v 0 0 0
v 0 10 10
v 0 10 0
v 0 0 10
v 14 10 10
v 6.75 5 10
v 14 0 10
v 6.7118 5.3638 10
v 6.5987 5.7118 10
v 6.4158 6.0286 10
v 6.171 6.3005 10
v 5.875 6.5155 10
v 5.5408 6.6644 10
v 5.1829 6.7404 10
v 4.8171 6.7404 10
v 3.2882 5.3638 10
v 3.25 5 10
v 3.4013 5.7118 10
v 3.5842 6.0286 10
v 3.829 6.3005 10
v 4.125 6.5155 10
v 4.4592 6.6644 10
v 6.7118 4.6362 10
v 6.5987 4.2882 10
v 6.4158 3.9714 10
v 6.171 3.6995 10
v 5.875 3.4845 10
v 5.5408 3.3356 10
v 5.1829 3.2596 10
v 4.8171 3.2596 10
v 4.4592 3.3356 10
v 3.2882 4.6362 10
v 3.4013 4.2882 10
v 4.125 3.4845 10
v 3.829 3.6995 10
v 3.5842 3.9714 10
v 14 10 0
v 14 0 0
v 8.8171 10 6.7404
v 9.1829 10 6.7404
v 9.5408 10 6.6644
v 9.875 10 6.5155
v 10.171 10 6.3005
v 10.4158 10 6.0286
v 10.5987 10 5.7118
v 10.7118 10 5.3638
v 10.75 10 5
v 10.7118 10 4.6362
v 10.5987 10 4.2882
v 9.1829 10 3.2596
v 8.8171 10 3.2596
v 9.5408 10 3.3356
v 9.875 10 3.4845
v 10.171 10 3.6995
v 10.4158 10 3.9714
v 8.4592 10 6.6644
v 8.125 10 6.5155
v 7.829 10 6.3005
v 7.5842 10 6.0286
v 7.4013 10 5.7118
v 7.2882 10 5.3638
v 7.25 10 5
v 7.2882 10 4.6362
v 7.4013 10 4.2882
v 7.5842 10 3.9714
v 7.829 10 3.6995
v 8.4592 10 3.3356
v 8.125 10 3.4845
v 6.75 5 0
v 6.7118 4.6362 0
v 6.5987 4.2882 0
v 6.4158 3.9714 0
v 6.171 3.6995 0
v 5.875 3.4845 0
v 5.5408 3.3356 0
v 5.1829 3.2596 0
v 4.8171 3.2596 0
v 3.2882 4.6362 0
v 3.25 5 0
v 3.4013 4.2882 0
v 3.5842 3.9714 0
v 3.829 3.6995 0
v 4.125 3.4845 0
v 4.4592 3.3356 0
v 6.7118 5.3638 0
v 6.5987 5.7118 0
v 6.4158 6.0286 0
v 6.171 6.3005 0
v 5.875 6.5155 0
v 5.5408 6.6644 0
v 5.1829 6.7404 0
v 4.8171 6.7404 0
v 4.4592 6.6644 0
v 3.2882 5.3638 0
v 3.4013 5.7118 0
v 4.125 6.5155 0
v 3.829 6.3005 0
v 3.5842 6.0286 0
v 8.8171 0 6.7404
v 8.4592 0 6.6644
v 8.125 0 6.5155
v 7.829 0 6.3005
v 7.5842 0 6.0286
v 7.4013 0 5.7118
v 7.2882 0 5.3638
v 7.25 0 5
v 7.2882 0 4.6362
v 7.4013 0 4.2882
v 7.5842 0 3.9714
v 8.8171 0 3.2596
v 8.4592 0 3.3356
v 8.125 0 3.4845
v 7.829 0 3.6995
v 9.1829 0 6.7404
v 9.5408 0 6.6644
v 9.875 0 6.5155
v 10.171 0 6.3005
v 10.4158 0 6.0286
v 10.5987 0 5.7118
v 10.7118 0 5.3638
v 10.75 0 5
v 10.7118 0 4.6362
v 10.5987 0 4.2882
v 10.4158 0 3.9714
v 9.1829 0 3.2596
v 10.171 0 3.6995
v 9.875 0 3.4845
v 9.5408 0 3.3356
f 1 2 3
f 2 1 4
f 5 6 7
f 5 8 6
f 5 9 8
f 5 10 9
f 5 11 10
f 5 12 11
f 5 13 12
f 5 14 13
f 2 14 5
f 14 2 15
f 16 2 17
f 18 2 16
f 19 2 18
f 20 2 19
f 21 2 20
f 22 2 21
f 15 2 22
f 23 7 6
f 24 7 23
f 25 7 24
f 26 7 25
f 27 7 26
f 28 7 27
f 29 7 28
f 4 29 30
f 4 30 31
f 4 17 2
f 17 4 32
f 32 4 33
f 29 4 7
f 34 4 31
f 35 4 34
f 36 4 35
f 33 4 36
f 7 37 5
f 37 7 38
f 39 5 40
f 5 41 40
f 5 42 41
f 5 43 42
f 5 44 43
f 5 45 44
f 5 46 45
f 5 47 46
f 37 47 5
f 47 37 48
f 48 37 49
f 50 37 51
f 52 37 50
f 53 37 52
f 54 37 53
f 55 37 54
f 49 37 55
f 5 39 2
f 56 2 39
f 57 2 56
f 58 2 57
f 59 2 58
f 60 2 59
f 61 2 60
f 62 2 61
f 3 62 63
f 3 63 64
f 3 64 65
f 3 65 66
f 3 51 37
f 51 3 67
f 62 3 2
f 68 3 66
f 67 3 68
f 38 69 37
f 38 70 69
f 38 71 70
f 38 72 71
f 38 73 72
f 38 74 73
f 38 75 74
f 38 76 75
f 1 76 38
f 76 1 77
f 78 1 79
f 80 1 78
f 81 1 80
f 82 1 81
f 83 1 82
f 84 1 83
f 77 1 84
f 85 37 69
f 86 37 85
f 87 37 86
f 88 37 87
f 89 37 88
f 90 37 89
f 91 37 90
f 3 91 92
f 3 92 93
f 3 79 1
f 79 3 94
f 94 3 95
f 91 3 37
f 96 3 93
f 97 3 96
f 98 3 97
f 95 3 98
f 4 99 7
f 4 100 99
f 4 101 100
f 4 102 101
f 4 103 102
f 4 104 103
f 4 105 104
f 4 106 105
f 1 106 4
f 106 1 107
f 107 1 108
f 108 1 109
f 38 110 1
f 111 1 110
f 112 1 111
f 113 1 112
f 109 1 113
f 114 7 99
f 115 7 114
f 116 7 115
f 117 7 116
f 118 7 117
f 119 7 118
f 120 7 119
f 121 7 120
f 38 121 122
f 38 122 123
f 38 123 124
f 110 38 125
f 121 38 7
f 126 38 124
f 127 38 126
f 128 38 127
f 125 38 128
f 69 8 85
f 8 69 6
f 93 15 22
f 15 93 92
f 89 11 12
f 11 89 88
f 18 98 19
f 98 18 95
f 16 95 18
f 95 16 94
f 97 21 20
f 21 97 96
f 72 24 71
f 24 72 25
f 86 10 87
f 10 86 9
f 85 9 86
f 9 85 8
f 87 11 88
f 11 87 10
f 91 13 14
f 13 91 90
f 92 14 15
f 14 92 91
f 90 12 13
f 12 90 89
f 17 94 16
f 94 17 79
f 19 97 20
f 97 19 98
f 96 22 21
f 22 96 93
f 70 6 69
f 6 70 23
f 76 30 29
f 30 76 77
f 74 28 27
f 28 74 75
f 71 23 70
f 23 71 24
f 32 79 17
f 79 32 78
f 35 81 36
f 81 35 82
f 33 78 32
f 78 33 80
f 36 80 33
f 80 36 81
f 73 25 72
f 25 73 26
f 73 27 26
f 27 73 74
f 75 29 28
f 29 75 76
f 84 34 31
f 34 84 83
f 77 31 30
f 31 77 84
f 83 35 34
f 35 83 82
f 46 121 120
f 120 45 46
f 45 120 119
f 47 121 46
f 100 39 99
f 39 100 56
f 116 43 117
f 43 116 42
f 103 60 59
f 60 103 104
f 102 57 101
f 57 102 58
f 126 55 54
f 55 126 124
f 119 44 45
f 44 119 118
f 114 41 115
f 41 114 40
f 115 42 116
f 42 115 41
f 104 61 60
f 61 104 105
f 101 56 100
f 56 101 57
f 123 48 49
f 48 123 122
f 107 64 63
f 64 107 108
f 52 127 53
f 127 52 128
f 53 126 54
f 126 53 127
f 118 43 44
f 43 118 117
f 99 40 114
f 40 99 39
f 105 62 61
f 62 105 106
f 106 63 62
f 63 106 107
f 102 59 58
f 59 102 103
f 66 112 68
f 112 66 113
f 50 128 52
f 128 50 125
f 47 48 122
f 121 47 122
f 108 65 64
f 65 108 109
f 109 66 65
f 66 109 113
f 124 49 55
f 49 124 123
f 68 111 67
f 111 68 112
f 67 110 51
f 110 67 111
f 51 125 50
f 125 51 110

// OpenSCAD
difference () {
    cube([14,10,10], center=false);
    translate([5,5,5]){
        cylinder(h=10, r=1.75, center=true, $fs=0.1);
    }
    translate([9,5,5]) {
        rotate([90,0,0]){
            cylinder(h=10, r=1.75, center=true, $fs=0.1);
        }
    }
}
